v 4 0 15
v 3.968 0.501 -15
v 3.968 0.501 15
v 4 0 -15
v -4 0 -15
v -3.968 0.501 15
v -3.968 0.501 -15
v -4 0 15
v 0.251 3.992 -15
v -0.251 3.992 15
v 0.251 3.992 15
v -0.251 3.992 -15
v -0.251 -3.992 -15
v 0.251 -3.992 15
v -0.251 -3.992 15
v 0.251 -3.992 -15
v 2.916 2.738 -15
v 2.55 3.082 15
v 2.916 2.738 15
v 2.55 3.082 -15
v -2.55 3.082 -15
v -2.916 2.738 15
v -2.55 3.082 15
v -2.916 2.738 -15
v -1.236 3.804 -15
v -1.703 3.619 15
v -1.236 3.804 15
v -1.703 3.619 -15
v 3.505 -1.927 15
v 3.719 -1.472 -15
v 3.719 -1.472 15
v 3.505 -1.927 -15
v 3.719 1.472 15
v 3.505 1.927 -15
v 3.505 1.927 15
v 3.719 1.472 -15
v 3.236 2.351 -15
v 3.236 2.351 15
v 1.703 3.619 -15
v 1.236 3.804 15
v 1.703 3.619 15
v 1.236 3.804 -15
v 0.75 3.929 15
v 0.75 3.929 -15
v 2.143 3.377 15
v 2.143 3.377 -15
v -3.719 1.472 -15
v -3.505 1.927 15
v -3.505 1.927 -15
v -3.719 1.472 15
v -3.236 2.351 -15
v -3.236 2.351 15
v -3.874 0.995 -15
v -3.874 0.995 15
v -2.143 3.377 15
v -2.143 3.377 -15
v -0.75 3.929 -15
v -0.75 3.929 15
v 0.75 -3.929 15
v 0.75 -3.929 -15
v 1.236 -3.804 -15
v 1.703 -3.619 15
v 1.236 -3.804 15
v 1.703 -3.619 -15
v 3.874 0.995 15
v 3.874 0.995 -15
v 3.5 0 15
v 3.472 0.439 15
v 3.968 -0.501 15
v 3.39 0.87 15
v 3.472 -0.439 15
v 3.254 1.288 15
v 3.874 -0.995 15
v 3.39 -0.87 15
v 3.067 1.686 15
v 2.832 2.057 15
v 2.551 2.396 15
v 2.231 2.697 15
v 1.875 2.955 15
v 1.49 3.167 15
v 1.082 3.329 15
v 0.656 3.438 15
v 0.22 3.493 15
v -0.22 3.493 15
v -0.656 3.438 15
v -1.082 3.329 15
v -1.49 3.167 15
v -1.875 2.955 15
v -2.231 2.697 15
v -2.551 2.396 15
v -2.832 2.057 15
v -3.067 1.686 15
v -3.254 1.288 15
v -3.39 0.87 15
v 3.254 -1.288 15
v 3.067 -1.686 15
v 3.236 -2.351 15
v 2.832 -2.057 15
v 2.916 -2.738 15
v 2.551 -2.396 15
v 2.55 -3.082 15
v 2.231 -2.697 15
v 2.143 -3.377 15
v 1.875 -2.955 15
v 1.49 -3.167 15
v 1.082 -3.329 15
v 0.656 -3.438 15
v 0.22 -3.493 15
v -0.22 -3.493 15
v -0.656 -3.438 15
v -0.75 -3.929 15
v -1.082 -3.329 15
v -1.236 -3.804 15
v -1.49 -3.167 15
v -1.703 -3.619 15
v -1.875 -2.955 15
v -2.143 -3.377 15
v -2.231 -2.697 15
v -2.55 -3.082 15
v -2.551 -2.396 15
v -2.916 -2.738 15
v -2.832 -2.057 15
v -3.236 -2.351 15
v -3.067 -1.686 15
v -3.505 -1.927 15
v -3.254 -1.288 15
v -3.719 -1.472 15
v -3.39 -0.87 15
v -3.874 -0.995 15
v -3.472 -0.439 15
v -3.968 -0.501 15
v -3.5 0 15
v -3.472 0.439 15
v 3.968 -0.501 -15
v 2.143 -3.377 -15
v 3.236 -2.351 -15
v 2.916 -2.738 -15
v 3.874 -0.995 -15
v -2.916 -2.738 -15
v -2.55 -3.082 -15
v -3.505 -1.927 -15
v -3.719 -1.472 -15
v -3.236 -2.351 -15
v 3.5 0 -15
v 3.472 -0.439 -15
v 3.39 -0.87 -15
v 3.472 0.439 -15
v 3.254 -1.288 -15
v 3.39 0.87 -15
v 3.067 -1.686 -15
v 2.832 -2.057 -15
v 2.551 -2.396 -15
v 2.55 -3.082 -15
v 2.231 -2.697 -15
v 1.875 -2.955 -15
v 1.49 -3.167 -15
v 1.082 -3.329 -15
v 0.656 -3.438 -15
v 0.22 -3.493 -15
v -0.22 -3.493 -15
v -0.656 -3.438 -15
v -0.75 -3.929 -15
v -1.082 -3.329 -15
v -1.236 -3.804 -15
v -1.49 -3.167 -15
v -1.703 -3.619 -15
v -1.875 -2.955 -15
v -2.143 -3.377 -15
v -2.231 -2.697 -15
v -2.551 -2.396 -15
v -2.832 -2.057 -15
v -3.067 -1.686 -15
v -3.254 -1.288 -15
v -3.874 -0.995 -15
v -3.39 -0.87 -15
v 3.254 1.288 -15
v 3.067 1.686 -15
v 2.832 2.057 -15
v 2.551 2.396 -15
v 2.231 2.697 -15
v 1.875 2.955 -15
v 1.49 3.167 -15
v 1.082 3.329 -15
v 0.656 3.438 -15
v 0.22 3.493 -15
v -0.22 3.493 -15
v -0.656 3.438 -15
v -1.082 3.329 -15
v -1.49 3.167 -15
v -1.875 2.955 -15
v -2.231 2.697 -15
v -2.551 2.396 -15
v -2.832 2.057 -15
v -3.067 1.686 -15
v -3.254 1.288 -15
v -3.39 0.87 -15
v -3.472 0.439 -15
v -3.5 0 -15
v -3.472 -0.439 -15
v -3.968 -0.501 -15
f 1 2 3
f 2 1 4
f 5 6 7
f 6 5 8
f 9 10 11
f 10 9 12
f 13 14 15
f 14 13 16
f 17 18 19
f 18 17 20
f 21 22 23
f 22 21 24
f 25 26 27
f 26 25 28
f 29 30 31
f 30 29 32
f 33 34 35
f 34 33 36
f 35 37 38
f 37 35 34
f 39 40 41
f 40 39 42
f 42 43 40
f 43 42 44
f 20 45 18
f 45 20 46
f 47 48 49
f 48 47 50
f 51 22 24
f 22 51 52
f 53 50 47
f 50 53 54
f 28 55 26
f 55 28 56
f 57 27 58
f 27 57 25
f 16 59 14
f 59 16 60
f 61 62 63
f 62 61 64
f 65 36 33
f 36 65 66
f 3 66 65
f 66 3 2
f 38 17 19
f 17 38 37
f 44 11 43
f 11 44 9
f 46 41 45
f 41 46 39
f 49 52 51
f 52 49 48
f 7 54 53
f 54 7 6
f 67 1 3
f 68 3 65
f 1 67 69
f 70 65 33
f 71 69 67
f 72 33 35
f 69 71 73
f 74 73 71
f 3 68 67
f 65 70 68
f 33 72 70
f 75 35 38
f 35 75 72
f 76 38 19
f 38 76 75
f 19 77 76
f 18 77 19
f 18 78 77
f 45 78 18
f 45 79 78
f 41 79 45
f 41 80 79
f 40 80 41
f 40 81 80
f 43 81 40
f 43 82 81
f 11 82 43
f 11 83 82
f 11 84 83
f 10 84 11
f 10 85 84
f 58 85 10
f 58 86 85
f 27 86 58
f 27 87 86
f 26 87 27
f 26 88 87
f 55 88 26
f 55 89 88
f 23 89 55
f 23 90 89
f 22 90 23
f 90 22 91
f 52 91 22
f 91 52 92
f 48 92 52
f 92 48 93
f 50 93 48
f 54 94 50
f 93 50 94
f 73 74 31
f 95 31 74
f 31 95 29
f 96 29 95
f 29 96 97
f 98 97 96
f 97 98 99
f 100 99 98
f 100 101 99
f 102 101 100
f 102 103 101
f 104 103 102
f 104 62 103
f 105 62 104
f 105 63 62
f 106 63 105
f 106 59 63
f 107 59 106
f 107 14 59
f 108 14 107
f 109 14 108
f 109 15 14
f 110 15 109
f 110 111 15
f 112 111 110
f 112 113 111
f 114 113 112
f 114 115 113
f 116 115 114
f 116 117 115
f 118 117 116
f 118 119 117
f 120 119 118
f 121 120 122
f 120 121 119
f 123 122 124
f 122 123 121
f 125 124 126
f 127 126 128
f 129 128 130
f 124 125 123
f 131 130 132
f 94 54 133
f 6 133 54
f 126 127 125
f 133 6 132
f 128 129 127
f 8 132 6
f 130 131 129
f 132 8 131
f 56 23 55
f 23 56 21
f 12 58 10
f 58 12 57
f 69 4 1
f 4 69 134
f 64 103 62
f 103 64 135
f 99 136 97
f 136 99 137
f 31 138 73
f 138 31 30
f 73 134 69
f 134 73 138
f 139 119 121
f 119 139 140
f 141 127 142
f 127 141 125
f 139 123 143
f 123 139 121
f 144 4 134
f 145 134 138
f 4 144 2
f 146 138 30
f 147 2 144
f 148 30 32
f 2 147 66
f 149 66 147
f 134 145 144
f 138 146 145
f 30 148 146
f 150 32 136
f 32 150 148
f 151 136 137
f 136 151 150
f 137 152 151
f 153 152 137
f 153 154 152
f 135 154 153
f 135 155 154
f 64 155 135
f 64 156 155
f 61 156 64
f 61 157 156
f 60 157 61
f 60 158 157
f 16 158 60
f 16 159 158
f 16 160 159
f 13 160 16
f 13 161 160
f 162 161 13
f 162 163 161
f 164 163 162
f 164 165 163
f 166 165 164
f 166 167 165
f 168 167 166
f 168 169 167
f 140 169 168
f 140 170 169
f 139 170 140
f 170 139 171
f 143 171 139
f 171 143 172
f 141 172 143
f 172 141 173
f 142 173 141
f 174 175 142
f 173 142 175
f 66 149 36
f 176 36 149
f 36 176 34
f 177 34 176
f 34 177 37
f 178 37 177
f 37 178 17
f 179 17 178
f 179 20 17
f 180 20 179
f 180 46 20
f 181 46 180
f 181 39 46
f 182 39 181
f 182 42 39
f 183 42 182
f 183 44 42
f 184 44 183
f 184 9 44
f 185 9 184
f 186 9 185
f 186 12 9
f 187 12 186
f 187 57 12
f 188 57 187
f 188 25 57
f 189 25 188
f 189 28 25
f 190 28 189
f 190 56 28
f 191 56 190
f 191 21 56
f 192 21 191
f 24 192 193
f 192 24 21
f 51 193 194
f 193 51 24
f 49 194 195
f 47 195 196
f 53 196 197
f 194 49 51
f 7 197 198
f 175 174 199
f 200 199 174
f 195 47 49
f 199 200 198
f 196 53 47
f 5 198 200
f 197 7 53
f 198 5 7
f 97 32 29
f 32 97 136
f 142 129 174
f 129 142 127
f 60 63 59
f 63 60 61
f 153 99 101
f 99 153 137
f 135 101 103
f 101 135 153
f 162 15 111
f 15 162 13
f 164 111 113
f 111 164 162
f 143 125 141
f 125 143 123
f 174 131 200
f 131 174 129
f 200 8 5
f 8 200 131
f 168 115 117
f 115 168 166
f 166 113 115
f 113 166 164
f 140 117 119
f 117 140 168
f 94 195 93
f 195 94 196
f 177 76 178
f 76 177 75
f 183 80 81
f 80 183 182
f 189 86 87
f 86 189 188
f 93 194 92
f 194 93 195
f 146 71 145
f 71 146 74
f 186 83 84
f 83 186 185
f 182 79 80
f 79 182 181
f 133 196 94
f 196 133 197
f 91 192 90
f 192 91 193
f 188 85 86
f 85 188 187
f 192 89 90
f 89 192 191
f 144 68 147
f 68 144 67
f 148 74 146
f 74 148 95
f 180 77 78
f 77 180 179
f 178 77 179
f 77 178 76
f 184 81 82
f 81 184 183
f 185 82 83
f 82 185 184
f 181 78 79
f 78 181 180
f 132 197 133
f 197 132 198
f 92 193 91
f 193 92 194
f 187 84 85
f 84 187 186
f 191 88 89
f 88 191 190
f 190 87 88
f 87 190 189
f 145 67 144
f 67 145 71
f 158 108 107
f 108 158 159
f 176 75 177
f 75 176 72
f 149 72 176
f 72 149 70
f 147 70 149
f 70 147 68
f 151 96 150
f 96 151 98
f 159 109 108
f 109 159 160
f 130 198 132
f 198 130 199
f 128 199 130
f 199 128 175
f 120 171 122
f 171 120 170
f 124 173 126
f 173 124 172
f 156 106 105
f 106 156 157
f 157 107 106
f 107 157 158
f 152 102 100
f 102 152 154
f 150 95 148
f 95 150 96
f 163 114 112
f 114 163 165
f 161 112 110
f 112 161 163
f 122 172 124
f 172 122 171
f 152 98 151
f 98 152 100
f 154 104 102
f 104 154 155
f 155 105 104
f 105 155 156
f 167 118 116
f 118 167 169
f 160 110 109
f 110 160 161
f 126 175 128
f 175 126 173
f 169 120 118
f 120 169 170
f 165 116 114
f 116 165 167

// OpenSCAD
$fn = 50;


difference() {
	union() {
		translate(v = [0, 0, -15.0000000000]) {
			cylinder(h = 30, r = 4.0000000000);
		}
	}
	union() {
		translate(v = [0, 0, -100.0000000000]) {
			cylinder(h = 200, r = 3.5000000000);
		}
	}
}
